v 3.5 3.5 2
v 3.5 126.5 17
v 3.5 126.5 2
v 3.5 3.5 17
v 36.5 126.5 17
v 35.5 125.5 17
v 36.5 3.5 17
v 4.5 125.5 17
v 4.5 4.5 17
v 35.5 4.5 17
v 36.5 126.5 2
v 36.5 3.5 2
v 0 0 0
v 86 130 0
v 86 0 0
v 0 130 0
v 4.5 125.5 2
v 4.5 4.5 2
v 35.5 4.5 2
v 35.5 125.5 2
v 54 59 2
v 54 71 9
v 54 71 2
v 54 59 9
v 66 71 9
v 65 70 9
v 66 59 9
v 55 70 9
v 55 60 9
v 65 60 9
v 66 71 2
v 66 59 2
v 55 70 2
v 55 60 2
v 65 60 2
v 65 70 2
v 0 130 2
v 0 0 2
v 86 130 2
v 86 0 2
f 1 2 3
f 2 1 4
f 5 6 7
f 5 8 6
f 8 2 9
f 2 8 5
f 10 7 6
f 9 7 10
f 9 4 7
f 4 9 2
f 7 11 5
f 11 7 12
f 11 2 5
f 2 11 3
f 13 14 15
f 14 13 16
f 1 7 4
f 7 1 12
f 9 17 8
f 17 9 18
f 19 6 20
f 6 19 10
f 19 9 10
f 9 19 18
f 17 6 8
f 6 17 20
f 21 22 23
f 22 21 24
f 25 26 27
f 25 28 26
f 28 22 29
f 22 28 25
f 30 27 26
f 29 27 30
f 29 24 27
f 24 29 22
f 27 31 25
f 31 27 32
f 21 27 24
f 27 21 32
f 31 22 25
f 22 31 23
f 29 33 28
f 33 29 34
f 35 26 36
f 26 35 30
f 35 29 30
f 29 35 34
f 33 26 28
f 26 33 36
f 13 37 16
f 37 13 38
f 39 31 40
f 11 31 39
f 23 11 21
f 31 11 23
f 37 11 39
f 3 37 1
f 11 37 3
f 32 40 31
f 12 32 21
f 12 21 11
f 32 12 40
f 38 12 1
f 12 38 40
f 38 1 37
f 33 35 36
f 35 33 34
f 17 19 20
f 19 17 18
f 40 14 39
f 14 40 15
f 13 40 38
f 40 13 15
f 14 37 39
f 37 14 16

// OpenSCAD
e = 0.01;

x1 = 20;
x2 = 65;
x3 = 60;
x4 = 31;
x5 = 10;

y1 = 130;
y2 = 121;

t3 = 2;

z1 = 7 + t3;
z2 = 15 + t3;

t1 = 1;
t2 = 1;
r = y1 / 2;

h1 = 20;


// cut out holes for prototyping
difference() {

// The main object
union() {
cube([x3 + x5/2 + t1 + h1, y1, t3]);

//translate([x2, y1/2, 0]) cylinder(t3, r, r);

x5a = (x5 + 2 * t1)/2;
translate([x3 - x5a, y1/2 - x5a, 0])
difference() {
   cube([2 * x5a, 2 * x5a, z1]);
   translate([t1, t1, 0]) cube([x5, x5, z1+e]);
}

translate([x1 - (x4/2 + t2), y1/2 - y2/2 - t2, 0])
difference() {
    cube([x4 + 2 * t2, y2 + 2 * t2, z2]);
    translate([t2, t2, 0]) cube([x4, y2, z2 + e]);
}
}

// The holes
/*
translate([x1 - x4/2, (y1 - y2)/2, -e])
    cube([x4, y2, t3 + 2*e]);

translate([x1 + x4/2 + t2 + 2, 2, -e])
    cube([x3 - x5/2 - t1 - 2 - x1 - x4/2 - t2 - 2, y1 - 4, t3 + 2 * e]);

translate([90, 40, -e])
cylinder(t3 + 2 * e, 20, 20);

translate([90, 90, -e])
cylinder(t3 + 2 * e, 20, 20);

translate([105, 65, -e])
cylinder(t3 + 2 * e, 20, 20);
*/
}
